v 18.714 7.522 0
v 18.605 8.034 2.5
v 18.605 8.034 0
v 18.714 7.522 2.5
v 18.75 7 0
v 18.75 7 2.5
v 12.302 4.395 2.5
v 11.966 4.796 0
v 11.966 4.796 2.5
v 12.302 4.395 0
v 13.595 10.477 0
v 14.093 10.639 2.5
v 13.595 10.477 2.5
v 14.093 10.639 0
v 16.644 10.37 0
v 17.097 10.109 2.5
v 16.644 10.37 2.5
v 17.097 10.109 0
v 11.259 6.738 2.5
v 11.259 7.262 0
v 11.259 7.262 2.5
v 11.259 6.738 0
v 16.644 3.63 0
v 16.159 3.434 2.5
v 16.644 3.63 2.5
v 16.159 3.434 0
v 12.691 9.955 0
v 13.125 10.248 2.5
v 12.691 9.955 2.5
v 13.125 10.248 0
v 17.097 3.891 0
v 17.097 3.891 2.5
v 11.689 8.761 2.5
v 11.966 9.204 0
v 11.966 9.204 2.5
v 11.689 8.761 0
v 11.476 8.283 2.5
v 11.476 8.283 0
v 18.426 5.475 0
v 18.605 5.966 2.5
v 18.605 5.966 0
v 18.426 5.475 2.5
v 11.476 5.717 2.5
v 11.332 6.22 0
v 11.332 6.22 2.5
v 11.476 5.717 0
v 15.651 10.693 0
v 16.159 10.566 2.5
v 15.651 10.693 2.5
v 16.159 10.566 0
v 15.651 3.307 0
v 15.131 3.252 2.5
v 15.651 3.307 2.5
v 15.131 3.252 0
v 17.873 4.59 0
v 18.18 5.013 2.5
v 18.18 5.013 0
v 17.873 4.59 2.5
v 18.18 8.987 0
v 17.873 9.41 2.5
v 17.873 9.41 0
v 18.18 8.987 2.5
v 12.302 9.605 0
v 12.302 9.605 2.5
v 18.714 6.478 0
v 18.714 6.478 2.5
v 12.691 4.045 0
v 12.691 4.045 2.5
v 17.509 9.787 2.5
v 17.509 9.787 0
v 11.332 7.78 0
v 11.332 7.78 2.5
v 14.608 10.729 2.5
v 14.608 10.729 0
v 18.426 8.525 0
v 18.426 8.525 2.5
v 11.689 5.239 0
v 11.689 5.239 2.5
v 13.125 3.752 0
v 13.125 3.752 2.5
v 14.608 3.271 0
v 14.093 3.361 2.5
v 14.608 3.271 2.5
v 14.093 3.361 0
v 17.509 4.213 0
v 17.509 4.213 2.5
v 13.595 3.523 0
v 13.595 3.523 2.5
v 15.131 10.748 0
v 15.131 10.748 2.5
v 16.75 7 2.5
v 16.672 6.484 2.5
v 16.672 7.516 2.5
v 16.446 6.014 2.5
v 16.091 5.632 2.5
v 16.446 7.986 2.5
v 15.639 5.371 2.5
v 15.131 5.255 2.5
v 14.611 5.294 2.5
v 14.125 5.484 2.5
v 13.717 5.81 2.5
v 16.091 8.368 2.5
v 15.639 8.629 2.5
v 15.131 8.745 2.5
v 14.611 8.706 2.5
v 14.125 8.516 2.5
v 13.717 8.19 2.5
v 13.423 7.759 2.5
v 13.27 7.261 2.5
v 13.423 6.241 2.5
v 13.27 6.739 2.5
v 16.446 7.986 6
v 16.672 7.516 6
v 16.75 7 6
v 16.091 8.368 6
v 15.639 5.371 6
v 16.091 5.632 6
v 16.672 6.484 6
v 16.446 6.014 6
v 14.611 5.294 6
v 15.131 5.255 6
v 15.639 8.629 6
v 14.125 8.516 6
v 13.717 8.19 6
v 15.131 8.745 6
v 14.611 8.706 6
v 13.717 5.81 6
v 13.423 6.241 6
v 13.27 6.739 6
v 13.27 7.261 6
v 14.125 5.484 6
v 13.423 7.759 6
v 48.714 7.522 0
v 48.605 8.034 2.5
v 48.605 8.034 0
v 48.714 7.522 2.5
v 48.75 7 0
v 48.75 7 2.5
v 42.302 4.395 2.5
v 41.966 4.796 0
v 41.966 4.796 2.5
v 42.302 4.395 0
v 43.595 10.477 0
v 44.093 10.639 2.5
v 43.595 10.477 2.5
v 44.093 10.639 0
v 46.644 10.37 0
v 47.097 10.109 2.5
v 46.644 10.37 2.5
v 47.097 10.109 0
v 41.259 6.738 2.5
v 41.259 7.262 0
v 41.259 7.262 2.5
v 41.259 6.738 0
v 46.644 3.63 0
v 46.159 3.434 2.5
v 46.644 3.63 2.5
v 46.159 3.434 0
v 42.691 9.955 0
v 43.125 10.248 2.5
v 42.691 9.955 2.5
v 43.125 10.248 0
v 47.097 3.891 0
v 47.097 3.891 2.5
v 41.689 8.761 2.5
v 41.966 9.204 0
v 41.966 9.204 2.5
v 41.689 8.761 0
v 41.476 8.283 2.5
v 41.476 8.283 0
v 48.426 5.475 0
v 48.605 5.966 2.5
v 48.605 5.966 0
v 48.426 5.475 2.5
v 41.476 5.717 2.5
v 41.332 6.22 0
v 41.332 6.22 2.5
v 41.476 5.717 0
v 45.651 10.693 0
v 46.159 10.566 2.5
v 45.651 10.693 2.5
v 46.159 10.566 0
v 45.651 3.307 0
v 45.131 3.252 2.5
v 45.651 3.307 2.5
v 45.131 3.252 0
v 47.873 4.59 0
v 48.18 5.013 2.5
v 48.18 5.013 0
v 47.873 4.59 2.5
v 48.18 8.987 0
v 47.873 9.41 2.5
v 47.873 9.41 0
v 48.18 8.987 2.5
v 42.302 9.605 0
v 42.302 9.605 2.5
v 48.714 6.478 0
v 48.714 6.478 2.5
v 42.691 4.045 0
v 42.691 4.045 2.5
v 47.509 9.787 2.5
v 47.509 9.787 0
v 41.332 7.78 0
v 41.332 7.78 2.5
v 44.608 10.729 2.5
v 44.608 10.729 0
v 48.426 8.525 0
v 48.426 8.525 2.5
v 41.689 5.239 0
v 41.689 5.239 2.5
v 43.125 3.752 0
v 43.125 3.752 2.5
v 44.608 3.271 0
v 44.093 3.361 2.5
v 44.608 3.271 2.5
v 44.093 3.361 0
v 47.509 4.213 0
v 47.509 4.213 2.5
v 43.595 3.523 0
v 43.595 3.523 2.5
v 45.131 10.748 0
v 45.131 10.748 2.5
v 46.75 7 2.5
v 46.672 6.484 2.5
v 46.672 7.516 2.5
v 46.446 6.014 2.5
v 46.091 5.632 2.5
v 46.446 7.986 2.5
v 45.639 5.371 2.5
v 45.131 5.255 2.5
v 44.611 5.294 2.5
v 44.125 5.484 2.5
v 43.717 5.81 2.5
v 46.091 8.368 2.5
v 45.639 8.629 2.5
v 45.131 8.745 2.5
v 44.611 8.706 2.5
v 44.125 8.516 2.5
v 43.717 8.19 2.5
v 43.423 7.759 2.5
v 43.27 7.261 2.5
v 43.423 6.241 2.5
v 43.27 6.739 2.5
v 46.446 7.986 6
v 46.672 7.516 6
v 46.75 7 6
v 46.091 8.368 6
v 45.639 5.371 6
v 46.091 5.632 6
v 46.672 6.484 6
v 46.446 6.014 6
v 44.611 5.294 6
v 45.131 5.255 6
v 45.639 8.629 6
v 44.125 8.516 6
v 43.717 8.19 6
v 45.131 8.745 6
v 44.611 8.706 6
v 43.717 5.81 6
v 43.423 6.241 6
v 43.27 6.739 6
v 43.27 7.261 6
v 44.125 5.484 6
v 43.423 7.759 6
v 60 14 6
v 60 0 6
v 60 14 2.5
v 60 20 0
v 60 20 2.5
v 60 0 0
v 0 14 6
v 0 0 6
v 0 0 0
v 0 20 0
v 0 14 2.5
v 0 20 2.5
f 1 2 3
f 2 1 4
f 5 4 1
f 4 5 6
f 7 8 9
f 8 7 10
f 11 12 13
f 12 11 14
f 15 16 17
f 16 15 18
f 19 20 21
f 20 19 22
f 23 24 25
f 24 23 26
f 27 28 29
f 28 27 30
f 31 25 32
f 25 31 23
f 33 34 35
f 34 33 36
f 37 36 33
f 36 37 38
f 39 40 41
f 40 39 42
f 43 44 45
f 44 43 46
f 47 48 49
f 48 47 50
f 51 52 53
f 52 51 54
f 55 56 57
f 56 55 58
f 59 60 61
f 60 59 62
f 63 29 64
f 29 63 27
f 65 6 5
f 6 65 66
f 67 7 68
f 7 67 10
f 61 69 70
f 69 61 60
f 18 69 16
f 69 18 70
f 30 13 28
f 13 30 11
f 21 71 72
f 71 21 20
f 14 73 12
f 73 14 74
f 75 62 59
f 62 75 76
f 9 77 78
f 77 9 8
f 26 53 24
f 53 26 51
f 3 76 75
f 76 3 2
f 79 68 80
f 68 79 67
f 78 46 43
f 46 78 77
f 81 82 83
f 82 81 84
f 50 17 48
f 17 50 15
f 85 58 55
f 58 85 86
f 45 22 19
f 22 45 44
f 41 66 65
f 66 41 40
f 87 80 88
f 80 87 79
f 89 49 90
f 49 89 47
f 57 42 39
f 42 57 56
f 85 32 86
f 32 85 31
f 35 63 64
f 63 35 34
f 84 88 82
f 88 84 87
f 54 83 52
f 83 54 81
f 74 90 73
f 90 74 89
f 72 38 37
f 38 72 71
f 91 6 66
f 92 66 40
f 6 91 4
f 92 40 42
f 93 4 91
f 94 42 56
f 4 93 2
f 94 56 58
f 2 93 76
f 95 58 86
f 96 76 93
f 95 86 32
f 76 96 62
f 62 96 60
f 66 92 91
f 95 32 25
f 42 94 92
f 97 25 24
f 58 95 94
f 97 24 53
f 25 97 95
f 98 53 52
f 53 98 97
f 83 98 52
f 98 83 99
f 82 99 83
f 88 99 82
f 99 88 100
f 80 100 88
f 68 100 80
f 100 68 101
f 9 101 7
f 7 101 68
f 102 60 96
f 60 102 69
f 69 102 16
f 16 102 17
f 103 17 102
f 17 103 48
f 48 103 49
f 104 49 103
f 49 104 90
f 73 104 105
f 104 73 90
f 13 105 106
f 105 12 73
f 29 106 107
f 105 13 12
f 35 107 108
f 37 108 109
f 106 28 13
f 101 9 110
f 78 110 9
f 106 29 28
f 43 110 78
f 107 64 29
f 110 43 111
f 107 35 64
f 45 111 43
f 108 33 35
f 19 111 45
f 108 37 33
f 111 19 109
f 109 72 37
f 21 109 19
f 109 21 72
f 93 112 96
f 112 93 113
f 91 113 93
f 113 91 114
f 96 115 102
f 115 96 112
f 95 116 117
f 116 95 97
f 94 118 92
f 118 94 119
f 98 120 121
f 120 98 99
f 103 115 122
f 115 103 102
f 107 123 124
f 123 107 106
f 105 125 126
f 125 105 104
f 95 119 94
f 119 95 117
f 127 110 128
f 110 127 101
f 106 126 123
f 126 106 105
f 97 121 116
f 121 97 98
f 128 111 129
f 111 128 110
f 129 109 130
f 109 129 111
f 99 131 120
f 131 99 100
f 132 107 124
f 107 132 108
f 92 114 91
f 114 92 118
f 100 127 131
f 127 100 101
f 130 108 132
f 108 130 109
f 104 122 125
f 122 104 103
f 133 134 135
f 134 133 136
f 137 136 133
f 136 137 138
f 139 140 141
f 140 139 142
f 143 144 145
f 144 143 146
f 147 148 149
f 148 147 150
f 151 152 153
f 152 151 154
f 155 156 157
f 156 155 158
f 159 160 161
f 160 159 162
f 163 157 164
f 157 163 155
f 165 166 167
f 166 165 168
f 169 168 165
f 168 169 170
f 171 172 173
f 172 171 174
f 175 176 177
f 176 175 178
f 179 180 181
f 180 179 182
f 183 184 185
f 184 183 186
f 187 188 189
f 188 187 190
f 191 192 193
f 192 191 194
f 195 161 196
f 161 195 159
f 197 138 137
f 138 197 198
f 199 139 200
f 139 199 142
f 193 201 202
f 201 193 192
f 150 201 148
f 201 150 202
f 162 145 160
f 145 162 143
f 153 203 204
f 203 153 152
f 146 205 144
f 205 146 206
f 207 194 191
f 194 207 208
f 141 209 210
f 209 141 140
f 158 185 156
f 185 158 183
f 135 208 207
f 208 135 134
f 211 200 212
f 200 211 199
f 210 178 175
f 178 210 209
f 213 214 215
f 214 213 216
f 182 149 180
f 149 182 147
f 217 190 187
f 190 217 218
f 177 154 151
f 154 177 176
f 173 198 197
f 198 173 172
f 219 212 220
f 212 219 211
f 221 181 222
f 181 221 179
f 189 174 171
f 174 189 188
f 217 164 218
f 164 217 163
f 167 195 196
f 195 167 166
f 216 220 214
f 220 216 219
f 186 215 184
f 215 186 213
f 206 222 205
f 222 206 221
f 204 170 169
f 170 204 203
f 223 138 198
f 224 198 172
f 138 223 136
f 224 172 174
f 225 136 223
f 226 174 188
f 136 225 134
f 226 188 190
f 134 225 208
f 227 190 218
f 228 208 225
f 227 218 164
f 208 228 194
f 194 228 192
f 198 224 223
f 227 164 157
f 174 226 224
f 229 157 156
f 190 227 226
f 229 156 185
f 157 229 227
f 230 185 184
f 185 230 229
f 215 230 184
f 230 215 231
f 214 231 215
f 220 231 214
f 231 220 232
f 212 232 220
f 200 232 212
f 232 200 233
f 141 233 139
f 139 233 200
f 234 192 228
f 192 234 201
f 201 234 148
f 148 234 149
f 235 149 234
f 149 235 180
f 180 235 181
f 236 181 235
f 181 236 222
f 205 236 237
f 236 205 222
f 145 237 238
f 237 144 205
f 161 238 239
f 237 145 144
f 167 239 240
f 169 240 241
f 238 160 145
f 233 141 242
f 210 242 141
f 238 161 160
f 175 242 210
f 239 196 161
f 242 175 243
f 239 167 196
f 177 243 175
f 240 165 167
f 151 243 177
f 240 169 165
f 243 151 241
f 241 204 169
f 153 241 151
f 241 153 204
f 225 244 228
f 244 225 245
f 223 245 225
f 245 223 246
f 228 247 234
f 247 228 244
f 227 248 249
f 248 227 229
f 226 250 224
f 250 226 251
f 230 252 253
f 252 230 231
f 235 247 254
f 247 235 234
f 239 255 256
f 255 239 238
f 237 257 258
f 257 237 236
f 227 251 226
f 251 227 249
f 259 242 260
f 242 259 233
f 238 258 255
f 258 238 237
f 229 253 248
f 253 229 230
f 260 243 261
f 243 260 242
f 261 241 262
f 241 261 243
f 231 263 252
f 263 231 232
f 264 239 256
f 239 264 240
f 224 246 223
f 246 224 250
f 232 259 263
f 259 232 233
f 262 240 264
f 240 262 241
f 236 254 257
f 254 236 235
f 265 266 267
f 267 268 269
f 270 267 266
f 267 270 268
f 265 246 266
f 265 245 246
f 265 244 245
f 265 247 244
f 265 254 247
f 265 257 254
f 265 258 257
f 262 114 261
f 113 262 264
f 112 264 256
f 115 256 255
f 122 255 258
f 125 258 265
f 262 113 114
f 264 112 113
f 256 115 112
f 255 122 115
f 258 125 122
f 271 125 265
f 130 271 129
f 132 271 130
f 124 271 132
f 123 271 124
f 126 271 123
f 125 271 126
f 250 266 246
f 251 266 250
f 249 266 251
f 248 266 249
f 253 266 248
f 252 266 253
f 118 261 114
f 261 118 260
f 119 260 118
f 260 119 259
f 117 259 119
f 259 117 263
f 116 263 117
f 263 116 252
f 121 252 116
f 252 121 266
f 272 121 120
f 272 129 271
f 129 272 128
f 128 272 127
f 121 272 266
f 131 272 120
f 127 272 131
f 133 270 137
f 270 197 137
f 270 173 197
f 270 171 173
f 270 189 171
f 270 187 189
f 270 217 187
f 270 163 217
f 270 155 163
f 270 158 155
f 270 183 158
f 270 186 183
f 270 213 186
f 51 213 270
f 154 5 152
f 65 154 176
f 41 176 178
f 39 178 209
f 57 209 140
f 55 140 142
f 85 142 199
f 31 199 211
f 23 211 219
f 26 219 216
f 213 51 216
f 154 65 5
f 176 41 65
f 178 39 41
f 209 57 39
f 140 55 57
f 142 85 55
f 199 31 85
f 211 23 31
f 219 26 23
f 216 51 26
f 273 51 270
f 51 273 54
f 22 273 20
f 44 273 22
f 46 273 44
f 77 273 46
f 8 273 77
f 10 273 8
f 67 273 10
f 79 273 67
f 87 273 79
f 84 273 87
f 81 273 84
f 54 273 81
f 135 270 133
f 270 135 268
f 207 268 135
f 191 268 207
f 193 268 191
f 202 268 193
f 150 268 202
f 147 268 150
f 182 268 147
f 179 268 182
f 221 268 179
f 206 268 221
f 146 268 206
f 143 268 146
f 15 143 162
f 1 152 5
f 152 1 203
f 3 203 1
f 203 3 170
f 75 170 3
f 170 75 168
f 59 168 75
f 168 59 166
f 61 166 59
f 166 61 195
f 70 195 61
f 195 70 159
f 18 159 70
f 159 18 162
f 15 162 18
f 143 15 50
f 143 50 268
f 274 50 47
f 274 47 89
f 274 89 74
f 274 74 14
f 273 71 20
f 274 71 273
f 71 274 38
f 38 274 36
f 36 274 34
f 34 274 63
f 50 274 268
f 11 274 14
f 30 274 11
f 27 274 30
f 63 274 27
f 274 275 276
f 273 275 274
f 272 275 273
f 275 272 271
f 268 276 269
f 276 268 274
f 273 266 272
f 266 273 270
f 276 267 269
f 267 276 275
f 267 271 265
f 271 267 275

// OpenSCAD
// Hangszórótartó
// Rés magassága: 6mm
// Szélesség: 86mm (legnagyobb távolság, ami a talpon mérhető)
// magasság: 79mm (legrövidebb távolság, ami a talpon mérhető)
// Talp vastagság: 3.5mm

fv = 6;
perem_vastagsag = 2.5;
h_lyukfej = 2.5;
d_lyukfej = 7.5;
d_lyukszar = fv-h_lyukfej;

hossz=60;
sz=20;
difference(){
    cube([hossz,sz,fv]);
    translate([-0.05,(sz-6),perem_vastagsag])cube([hossz+.1,sz,fv-perem_vastagsag+.1]);
    translate([0,(sz-6)/2, 2*fv])
    for(x=[hossz/4,3/4*hossz]){
        translate([x,0,0])
            mirror([0,0,1])#csavarlyuk(fv,
                                       h_lyukfej,
                                       d_lyukfej,
                                       d_lyukszar);
    }
}

module csavarlyuk(fv, h_lyukfej, d_lyukfej, d_lyukszar){
    translate([0,0,2*fv-h_lyukfej])cylinder(r=d_lyukfej/2, h=h_lyukfej+.1, $fn=6*d_lyukfej);
    translate([0,0,-.1])cylinder(r=d_lyukszar/2,h=2*fv,$fn=6*d_lyukszar);
}
